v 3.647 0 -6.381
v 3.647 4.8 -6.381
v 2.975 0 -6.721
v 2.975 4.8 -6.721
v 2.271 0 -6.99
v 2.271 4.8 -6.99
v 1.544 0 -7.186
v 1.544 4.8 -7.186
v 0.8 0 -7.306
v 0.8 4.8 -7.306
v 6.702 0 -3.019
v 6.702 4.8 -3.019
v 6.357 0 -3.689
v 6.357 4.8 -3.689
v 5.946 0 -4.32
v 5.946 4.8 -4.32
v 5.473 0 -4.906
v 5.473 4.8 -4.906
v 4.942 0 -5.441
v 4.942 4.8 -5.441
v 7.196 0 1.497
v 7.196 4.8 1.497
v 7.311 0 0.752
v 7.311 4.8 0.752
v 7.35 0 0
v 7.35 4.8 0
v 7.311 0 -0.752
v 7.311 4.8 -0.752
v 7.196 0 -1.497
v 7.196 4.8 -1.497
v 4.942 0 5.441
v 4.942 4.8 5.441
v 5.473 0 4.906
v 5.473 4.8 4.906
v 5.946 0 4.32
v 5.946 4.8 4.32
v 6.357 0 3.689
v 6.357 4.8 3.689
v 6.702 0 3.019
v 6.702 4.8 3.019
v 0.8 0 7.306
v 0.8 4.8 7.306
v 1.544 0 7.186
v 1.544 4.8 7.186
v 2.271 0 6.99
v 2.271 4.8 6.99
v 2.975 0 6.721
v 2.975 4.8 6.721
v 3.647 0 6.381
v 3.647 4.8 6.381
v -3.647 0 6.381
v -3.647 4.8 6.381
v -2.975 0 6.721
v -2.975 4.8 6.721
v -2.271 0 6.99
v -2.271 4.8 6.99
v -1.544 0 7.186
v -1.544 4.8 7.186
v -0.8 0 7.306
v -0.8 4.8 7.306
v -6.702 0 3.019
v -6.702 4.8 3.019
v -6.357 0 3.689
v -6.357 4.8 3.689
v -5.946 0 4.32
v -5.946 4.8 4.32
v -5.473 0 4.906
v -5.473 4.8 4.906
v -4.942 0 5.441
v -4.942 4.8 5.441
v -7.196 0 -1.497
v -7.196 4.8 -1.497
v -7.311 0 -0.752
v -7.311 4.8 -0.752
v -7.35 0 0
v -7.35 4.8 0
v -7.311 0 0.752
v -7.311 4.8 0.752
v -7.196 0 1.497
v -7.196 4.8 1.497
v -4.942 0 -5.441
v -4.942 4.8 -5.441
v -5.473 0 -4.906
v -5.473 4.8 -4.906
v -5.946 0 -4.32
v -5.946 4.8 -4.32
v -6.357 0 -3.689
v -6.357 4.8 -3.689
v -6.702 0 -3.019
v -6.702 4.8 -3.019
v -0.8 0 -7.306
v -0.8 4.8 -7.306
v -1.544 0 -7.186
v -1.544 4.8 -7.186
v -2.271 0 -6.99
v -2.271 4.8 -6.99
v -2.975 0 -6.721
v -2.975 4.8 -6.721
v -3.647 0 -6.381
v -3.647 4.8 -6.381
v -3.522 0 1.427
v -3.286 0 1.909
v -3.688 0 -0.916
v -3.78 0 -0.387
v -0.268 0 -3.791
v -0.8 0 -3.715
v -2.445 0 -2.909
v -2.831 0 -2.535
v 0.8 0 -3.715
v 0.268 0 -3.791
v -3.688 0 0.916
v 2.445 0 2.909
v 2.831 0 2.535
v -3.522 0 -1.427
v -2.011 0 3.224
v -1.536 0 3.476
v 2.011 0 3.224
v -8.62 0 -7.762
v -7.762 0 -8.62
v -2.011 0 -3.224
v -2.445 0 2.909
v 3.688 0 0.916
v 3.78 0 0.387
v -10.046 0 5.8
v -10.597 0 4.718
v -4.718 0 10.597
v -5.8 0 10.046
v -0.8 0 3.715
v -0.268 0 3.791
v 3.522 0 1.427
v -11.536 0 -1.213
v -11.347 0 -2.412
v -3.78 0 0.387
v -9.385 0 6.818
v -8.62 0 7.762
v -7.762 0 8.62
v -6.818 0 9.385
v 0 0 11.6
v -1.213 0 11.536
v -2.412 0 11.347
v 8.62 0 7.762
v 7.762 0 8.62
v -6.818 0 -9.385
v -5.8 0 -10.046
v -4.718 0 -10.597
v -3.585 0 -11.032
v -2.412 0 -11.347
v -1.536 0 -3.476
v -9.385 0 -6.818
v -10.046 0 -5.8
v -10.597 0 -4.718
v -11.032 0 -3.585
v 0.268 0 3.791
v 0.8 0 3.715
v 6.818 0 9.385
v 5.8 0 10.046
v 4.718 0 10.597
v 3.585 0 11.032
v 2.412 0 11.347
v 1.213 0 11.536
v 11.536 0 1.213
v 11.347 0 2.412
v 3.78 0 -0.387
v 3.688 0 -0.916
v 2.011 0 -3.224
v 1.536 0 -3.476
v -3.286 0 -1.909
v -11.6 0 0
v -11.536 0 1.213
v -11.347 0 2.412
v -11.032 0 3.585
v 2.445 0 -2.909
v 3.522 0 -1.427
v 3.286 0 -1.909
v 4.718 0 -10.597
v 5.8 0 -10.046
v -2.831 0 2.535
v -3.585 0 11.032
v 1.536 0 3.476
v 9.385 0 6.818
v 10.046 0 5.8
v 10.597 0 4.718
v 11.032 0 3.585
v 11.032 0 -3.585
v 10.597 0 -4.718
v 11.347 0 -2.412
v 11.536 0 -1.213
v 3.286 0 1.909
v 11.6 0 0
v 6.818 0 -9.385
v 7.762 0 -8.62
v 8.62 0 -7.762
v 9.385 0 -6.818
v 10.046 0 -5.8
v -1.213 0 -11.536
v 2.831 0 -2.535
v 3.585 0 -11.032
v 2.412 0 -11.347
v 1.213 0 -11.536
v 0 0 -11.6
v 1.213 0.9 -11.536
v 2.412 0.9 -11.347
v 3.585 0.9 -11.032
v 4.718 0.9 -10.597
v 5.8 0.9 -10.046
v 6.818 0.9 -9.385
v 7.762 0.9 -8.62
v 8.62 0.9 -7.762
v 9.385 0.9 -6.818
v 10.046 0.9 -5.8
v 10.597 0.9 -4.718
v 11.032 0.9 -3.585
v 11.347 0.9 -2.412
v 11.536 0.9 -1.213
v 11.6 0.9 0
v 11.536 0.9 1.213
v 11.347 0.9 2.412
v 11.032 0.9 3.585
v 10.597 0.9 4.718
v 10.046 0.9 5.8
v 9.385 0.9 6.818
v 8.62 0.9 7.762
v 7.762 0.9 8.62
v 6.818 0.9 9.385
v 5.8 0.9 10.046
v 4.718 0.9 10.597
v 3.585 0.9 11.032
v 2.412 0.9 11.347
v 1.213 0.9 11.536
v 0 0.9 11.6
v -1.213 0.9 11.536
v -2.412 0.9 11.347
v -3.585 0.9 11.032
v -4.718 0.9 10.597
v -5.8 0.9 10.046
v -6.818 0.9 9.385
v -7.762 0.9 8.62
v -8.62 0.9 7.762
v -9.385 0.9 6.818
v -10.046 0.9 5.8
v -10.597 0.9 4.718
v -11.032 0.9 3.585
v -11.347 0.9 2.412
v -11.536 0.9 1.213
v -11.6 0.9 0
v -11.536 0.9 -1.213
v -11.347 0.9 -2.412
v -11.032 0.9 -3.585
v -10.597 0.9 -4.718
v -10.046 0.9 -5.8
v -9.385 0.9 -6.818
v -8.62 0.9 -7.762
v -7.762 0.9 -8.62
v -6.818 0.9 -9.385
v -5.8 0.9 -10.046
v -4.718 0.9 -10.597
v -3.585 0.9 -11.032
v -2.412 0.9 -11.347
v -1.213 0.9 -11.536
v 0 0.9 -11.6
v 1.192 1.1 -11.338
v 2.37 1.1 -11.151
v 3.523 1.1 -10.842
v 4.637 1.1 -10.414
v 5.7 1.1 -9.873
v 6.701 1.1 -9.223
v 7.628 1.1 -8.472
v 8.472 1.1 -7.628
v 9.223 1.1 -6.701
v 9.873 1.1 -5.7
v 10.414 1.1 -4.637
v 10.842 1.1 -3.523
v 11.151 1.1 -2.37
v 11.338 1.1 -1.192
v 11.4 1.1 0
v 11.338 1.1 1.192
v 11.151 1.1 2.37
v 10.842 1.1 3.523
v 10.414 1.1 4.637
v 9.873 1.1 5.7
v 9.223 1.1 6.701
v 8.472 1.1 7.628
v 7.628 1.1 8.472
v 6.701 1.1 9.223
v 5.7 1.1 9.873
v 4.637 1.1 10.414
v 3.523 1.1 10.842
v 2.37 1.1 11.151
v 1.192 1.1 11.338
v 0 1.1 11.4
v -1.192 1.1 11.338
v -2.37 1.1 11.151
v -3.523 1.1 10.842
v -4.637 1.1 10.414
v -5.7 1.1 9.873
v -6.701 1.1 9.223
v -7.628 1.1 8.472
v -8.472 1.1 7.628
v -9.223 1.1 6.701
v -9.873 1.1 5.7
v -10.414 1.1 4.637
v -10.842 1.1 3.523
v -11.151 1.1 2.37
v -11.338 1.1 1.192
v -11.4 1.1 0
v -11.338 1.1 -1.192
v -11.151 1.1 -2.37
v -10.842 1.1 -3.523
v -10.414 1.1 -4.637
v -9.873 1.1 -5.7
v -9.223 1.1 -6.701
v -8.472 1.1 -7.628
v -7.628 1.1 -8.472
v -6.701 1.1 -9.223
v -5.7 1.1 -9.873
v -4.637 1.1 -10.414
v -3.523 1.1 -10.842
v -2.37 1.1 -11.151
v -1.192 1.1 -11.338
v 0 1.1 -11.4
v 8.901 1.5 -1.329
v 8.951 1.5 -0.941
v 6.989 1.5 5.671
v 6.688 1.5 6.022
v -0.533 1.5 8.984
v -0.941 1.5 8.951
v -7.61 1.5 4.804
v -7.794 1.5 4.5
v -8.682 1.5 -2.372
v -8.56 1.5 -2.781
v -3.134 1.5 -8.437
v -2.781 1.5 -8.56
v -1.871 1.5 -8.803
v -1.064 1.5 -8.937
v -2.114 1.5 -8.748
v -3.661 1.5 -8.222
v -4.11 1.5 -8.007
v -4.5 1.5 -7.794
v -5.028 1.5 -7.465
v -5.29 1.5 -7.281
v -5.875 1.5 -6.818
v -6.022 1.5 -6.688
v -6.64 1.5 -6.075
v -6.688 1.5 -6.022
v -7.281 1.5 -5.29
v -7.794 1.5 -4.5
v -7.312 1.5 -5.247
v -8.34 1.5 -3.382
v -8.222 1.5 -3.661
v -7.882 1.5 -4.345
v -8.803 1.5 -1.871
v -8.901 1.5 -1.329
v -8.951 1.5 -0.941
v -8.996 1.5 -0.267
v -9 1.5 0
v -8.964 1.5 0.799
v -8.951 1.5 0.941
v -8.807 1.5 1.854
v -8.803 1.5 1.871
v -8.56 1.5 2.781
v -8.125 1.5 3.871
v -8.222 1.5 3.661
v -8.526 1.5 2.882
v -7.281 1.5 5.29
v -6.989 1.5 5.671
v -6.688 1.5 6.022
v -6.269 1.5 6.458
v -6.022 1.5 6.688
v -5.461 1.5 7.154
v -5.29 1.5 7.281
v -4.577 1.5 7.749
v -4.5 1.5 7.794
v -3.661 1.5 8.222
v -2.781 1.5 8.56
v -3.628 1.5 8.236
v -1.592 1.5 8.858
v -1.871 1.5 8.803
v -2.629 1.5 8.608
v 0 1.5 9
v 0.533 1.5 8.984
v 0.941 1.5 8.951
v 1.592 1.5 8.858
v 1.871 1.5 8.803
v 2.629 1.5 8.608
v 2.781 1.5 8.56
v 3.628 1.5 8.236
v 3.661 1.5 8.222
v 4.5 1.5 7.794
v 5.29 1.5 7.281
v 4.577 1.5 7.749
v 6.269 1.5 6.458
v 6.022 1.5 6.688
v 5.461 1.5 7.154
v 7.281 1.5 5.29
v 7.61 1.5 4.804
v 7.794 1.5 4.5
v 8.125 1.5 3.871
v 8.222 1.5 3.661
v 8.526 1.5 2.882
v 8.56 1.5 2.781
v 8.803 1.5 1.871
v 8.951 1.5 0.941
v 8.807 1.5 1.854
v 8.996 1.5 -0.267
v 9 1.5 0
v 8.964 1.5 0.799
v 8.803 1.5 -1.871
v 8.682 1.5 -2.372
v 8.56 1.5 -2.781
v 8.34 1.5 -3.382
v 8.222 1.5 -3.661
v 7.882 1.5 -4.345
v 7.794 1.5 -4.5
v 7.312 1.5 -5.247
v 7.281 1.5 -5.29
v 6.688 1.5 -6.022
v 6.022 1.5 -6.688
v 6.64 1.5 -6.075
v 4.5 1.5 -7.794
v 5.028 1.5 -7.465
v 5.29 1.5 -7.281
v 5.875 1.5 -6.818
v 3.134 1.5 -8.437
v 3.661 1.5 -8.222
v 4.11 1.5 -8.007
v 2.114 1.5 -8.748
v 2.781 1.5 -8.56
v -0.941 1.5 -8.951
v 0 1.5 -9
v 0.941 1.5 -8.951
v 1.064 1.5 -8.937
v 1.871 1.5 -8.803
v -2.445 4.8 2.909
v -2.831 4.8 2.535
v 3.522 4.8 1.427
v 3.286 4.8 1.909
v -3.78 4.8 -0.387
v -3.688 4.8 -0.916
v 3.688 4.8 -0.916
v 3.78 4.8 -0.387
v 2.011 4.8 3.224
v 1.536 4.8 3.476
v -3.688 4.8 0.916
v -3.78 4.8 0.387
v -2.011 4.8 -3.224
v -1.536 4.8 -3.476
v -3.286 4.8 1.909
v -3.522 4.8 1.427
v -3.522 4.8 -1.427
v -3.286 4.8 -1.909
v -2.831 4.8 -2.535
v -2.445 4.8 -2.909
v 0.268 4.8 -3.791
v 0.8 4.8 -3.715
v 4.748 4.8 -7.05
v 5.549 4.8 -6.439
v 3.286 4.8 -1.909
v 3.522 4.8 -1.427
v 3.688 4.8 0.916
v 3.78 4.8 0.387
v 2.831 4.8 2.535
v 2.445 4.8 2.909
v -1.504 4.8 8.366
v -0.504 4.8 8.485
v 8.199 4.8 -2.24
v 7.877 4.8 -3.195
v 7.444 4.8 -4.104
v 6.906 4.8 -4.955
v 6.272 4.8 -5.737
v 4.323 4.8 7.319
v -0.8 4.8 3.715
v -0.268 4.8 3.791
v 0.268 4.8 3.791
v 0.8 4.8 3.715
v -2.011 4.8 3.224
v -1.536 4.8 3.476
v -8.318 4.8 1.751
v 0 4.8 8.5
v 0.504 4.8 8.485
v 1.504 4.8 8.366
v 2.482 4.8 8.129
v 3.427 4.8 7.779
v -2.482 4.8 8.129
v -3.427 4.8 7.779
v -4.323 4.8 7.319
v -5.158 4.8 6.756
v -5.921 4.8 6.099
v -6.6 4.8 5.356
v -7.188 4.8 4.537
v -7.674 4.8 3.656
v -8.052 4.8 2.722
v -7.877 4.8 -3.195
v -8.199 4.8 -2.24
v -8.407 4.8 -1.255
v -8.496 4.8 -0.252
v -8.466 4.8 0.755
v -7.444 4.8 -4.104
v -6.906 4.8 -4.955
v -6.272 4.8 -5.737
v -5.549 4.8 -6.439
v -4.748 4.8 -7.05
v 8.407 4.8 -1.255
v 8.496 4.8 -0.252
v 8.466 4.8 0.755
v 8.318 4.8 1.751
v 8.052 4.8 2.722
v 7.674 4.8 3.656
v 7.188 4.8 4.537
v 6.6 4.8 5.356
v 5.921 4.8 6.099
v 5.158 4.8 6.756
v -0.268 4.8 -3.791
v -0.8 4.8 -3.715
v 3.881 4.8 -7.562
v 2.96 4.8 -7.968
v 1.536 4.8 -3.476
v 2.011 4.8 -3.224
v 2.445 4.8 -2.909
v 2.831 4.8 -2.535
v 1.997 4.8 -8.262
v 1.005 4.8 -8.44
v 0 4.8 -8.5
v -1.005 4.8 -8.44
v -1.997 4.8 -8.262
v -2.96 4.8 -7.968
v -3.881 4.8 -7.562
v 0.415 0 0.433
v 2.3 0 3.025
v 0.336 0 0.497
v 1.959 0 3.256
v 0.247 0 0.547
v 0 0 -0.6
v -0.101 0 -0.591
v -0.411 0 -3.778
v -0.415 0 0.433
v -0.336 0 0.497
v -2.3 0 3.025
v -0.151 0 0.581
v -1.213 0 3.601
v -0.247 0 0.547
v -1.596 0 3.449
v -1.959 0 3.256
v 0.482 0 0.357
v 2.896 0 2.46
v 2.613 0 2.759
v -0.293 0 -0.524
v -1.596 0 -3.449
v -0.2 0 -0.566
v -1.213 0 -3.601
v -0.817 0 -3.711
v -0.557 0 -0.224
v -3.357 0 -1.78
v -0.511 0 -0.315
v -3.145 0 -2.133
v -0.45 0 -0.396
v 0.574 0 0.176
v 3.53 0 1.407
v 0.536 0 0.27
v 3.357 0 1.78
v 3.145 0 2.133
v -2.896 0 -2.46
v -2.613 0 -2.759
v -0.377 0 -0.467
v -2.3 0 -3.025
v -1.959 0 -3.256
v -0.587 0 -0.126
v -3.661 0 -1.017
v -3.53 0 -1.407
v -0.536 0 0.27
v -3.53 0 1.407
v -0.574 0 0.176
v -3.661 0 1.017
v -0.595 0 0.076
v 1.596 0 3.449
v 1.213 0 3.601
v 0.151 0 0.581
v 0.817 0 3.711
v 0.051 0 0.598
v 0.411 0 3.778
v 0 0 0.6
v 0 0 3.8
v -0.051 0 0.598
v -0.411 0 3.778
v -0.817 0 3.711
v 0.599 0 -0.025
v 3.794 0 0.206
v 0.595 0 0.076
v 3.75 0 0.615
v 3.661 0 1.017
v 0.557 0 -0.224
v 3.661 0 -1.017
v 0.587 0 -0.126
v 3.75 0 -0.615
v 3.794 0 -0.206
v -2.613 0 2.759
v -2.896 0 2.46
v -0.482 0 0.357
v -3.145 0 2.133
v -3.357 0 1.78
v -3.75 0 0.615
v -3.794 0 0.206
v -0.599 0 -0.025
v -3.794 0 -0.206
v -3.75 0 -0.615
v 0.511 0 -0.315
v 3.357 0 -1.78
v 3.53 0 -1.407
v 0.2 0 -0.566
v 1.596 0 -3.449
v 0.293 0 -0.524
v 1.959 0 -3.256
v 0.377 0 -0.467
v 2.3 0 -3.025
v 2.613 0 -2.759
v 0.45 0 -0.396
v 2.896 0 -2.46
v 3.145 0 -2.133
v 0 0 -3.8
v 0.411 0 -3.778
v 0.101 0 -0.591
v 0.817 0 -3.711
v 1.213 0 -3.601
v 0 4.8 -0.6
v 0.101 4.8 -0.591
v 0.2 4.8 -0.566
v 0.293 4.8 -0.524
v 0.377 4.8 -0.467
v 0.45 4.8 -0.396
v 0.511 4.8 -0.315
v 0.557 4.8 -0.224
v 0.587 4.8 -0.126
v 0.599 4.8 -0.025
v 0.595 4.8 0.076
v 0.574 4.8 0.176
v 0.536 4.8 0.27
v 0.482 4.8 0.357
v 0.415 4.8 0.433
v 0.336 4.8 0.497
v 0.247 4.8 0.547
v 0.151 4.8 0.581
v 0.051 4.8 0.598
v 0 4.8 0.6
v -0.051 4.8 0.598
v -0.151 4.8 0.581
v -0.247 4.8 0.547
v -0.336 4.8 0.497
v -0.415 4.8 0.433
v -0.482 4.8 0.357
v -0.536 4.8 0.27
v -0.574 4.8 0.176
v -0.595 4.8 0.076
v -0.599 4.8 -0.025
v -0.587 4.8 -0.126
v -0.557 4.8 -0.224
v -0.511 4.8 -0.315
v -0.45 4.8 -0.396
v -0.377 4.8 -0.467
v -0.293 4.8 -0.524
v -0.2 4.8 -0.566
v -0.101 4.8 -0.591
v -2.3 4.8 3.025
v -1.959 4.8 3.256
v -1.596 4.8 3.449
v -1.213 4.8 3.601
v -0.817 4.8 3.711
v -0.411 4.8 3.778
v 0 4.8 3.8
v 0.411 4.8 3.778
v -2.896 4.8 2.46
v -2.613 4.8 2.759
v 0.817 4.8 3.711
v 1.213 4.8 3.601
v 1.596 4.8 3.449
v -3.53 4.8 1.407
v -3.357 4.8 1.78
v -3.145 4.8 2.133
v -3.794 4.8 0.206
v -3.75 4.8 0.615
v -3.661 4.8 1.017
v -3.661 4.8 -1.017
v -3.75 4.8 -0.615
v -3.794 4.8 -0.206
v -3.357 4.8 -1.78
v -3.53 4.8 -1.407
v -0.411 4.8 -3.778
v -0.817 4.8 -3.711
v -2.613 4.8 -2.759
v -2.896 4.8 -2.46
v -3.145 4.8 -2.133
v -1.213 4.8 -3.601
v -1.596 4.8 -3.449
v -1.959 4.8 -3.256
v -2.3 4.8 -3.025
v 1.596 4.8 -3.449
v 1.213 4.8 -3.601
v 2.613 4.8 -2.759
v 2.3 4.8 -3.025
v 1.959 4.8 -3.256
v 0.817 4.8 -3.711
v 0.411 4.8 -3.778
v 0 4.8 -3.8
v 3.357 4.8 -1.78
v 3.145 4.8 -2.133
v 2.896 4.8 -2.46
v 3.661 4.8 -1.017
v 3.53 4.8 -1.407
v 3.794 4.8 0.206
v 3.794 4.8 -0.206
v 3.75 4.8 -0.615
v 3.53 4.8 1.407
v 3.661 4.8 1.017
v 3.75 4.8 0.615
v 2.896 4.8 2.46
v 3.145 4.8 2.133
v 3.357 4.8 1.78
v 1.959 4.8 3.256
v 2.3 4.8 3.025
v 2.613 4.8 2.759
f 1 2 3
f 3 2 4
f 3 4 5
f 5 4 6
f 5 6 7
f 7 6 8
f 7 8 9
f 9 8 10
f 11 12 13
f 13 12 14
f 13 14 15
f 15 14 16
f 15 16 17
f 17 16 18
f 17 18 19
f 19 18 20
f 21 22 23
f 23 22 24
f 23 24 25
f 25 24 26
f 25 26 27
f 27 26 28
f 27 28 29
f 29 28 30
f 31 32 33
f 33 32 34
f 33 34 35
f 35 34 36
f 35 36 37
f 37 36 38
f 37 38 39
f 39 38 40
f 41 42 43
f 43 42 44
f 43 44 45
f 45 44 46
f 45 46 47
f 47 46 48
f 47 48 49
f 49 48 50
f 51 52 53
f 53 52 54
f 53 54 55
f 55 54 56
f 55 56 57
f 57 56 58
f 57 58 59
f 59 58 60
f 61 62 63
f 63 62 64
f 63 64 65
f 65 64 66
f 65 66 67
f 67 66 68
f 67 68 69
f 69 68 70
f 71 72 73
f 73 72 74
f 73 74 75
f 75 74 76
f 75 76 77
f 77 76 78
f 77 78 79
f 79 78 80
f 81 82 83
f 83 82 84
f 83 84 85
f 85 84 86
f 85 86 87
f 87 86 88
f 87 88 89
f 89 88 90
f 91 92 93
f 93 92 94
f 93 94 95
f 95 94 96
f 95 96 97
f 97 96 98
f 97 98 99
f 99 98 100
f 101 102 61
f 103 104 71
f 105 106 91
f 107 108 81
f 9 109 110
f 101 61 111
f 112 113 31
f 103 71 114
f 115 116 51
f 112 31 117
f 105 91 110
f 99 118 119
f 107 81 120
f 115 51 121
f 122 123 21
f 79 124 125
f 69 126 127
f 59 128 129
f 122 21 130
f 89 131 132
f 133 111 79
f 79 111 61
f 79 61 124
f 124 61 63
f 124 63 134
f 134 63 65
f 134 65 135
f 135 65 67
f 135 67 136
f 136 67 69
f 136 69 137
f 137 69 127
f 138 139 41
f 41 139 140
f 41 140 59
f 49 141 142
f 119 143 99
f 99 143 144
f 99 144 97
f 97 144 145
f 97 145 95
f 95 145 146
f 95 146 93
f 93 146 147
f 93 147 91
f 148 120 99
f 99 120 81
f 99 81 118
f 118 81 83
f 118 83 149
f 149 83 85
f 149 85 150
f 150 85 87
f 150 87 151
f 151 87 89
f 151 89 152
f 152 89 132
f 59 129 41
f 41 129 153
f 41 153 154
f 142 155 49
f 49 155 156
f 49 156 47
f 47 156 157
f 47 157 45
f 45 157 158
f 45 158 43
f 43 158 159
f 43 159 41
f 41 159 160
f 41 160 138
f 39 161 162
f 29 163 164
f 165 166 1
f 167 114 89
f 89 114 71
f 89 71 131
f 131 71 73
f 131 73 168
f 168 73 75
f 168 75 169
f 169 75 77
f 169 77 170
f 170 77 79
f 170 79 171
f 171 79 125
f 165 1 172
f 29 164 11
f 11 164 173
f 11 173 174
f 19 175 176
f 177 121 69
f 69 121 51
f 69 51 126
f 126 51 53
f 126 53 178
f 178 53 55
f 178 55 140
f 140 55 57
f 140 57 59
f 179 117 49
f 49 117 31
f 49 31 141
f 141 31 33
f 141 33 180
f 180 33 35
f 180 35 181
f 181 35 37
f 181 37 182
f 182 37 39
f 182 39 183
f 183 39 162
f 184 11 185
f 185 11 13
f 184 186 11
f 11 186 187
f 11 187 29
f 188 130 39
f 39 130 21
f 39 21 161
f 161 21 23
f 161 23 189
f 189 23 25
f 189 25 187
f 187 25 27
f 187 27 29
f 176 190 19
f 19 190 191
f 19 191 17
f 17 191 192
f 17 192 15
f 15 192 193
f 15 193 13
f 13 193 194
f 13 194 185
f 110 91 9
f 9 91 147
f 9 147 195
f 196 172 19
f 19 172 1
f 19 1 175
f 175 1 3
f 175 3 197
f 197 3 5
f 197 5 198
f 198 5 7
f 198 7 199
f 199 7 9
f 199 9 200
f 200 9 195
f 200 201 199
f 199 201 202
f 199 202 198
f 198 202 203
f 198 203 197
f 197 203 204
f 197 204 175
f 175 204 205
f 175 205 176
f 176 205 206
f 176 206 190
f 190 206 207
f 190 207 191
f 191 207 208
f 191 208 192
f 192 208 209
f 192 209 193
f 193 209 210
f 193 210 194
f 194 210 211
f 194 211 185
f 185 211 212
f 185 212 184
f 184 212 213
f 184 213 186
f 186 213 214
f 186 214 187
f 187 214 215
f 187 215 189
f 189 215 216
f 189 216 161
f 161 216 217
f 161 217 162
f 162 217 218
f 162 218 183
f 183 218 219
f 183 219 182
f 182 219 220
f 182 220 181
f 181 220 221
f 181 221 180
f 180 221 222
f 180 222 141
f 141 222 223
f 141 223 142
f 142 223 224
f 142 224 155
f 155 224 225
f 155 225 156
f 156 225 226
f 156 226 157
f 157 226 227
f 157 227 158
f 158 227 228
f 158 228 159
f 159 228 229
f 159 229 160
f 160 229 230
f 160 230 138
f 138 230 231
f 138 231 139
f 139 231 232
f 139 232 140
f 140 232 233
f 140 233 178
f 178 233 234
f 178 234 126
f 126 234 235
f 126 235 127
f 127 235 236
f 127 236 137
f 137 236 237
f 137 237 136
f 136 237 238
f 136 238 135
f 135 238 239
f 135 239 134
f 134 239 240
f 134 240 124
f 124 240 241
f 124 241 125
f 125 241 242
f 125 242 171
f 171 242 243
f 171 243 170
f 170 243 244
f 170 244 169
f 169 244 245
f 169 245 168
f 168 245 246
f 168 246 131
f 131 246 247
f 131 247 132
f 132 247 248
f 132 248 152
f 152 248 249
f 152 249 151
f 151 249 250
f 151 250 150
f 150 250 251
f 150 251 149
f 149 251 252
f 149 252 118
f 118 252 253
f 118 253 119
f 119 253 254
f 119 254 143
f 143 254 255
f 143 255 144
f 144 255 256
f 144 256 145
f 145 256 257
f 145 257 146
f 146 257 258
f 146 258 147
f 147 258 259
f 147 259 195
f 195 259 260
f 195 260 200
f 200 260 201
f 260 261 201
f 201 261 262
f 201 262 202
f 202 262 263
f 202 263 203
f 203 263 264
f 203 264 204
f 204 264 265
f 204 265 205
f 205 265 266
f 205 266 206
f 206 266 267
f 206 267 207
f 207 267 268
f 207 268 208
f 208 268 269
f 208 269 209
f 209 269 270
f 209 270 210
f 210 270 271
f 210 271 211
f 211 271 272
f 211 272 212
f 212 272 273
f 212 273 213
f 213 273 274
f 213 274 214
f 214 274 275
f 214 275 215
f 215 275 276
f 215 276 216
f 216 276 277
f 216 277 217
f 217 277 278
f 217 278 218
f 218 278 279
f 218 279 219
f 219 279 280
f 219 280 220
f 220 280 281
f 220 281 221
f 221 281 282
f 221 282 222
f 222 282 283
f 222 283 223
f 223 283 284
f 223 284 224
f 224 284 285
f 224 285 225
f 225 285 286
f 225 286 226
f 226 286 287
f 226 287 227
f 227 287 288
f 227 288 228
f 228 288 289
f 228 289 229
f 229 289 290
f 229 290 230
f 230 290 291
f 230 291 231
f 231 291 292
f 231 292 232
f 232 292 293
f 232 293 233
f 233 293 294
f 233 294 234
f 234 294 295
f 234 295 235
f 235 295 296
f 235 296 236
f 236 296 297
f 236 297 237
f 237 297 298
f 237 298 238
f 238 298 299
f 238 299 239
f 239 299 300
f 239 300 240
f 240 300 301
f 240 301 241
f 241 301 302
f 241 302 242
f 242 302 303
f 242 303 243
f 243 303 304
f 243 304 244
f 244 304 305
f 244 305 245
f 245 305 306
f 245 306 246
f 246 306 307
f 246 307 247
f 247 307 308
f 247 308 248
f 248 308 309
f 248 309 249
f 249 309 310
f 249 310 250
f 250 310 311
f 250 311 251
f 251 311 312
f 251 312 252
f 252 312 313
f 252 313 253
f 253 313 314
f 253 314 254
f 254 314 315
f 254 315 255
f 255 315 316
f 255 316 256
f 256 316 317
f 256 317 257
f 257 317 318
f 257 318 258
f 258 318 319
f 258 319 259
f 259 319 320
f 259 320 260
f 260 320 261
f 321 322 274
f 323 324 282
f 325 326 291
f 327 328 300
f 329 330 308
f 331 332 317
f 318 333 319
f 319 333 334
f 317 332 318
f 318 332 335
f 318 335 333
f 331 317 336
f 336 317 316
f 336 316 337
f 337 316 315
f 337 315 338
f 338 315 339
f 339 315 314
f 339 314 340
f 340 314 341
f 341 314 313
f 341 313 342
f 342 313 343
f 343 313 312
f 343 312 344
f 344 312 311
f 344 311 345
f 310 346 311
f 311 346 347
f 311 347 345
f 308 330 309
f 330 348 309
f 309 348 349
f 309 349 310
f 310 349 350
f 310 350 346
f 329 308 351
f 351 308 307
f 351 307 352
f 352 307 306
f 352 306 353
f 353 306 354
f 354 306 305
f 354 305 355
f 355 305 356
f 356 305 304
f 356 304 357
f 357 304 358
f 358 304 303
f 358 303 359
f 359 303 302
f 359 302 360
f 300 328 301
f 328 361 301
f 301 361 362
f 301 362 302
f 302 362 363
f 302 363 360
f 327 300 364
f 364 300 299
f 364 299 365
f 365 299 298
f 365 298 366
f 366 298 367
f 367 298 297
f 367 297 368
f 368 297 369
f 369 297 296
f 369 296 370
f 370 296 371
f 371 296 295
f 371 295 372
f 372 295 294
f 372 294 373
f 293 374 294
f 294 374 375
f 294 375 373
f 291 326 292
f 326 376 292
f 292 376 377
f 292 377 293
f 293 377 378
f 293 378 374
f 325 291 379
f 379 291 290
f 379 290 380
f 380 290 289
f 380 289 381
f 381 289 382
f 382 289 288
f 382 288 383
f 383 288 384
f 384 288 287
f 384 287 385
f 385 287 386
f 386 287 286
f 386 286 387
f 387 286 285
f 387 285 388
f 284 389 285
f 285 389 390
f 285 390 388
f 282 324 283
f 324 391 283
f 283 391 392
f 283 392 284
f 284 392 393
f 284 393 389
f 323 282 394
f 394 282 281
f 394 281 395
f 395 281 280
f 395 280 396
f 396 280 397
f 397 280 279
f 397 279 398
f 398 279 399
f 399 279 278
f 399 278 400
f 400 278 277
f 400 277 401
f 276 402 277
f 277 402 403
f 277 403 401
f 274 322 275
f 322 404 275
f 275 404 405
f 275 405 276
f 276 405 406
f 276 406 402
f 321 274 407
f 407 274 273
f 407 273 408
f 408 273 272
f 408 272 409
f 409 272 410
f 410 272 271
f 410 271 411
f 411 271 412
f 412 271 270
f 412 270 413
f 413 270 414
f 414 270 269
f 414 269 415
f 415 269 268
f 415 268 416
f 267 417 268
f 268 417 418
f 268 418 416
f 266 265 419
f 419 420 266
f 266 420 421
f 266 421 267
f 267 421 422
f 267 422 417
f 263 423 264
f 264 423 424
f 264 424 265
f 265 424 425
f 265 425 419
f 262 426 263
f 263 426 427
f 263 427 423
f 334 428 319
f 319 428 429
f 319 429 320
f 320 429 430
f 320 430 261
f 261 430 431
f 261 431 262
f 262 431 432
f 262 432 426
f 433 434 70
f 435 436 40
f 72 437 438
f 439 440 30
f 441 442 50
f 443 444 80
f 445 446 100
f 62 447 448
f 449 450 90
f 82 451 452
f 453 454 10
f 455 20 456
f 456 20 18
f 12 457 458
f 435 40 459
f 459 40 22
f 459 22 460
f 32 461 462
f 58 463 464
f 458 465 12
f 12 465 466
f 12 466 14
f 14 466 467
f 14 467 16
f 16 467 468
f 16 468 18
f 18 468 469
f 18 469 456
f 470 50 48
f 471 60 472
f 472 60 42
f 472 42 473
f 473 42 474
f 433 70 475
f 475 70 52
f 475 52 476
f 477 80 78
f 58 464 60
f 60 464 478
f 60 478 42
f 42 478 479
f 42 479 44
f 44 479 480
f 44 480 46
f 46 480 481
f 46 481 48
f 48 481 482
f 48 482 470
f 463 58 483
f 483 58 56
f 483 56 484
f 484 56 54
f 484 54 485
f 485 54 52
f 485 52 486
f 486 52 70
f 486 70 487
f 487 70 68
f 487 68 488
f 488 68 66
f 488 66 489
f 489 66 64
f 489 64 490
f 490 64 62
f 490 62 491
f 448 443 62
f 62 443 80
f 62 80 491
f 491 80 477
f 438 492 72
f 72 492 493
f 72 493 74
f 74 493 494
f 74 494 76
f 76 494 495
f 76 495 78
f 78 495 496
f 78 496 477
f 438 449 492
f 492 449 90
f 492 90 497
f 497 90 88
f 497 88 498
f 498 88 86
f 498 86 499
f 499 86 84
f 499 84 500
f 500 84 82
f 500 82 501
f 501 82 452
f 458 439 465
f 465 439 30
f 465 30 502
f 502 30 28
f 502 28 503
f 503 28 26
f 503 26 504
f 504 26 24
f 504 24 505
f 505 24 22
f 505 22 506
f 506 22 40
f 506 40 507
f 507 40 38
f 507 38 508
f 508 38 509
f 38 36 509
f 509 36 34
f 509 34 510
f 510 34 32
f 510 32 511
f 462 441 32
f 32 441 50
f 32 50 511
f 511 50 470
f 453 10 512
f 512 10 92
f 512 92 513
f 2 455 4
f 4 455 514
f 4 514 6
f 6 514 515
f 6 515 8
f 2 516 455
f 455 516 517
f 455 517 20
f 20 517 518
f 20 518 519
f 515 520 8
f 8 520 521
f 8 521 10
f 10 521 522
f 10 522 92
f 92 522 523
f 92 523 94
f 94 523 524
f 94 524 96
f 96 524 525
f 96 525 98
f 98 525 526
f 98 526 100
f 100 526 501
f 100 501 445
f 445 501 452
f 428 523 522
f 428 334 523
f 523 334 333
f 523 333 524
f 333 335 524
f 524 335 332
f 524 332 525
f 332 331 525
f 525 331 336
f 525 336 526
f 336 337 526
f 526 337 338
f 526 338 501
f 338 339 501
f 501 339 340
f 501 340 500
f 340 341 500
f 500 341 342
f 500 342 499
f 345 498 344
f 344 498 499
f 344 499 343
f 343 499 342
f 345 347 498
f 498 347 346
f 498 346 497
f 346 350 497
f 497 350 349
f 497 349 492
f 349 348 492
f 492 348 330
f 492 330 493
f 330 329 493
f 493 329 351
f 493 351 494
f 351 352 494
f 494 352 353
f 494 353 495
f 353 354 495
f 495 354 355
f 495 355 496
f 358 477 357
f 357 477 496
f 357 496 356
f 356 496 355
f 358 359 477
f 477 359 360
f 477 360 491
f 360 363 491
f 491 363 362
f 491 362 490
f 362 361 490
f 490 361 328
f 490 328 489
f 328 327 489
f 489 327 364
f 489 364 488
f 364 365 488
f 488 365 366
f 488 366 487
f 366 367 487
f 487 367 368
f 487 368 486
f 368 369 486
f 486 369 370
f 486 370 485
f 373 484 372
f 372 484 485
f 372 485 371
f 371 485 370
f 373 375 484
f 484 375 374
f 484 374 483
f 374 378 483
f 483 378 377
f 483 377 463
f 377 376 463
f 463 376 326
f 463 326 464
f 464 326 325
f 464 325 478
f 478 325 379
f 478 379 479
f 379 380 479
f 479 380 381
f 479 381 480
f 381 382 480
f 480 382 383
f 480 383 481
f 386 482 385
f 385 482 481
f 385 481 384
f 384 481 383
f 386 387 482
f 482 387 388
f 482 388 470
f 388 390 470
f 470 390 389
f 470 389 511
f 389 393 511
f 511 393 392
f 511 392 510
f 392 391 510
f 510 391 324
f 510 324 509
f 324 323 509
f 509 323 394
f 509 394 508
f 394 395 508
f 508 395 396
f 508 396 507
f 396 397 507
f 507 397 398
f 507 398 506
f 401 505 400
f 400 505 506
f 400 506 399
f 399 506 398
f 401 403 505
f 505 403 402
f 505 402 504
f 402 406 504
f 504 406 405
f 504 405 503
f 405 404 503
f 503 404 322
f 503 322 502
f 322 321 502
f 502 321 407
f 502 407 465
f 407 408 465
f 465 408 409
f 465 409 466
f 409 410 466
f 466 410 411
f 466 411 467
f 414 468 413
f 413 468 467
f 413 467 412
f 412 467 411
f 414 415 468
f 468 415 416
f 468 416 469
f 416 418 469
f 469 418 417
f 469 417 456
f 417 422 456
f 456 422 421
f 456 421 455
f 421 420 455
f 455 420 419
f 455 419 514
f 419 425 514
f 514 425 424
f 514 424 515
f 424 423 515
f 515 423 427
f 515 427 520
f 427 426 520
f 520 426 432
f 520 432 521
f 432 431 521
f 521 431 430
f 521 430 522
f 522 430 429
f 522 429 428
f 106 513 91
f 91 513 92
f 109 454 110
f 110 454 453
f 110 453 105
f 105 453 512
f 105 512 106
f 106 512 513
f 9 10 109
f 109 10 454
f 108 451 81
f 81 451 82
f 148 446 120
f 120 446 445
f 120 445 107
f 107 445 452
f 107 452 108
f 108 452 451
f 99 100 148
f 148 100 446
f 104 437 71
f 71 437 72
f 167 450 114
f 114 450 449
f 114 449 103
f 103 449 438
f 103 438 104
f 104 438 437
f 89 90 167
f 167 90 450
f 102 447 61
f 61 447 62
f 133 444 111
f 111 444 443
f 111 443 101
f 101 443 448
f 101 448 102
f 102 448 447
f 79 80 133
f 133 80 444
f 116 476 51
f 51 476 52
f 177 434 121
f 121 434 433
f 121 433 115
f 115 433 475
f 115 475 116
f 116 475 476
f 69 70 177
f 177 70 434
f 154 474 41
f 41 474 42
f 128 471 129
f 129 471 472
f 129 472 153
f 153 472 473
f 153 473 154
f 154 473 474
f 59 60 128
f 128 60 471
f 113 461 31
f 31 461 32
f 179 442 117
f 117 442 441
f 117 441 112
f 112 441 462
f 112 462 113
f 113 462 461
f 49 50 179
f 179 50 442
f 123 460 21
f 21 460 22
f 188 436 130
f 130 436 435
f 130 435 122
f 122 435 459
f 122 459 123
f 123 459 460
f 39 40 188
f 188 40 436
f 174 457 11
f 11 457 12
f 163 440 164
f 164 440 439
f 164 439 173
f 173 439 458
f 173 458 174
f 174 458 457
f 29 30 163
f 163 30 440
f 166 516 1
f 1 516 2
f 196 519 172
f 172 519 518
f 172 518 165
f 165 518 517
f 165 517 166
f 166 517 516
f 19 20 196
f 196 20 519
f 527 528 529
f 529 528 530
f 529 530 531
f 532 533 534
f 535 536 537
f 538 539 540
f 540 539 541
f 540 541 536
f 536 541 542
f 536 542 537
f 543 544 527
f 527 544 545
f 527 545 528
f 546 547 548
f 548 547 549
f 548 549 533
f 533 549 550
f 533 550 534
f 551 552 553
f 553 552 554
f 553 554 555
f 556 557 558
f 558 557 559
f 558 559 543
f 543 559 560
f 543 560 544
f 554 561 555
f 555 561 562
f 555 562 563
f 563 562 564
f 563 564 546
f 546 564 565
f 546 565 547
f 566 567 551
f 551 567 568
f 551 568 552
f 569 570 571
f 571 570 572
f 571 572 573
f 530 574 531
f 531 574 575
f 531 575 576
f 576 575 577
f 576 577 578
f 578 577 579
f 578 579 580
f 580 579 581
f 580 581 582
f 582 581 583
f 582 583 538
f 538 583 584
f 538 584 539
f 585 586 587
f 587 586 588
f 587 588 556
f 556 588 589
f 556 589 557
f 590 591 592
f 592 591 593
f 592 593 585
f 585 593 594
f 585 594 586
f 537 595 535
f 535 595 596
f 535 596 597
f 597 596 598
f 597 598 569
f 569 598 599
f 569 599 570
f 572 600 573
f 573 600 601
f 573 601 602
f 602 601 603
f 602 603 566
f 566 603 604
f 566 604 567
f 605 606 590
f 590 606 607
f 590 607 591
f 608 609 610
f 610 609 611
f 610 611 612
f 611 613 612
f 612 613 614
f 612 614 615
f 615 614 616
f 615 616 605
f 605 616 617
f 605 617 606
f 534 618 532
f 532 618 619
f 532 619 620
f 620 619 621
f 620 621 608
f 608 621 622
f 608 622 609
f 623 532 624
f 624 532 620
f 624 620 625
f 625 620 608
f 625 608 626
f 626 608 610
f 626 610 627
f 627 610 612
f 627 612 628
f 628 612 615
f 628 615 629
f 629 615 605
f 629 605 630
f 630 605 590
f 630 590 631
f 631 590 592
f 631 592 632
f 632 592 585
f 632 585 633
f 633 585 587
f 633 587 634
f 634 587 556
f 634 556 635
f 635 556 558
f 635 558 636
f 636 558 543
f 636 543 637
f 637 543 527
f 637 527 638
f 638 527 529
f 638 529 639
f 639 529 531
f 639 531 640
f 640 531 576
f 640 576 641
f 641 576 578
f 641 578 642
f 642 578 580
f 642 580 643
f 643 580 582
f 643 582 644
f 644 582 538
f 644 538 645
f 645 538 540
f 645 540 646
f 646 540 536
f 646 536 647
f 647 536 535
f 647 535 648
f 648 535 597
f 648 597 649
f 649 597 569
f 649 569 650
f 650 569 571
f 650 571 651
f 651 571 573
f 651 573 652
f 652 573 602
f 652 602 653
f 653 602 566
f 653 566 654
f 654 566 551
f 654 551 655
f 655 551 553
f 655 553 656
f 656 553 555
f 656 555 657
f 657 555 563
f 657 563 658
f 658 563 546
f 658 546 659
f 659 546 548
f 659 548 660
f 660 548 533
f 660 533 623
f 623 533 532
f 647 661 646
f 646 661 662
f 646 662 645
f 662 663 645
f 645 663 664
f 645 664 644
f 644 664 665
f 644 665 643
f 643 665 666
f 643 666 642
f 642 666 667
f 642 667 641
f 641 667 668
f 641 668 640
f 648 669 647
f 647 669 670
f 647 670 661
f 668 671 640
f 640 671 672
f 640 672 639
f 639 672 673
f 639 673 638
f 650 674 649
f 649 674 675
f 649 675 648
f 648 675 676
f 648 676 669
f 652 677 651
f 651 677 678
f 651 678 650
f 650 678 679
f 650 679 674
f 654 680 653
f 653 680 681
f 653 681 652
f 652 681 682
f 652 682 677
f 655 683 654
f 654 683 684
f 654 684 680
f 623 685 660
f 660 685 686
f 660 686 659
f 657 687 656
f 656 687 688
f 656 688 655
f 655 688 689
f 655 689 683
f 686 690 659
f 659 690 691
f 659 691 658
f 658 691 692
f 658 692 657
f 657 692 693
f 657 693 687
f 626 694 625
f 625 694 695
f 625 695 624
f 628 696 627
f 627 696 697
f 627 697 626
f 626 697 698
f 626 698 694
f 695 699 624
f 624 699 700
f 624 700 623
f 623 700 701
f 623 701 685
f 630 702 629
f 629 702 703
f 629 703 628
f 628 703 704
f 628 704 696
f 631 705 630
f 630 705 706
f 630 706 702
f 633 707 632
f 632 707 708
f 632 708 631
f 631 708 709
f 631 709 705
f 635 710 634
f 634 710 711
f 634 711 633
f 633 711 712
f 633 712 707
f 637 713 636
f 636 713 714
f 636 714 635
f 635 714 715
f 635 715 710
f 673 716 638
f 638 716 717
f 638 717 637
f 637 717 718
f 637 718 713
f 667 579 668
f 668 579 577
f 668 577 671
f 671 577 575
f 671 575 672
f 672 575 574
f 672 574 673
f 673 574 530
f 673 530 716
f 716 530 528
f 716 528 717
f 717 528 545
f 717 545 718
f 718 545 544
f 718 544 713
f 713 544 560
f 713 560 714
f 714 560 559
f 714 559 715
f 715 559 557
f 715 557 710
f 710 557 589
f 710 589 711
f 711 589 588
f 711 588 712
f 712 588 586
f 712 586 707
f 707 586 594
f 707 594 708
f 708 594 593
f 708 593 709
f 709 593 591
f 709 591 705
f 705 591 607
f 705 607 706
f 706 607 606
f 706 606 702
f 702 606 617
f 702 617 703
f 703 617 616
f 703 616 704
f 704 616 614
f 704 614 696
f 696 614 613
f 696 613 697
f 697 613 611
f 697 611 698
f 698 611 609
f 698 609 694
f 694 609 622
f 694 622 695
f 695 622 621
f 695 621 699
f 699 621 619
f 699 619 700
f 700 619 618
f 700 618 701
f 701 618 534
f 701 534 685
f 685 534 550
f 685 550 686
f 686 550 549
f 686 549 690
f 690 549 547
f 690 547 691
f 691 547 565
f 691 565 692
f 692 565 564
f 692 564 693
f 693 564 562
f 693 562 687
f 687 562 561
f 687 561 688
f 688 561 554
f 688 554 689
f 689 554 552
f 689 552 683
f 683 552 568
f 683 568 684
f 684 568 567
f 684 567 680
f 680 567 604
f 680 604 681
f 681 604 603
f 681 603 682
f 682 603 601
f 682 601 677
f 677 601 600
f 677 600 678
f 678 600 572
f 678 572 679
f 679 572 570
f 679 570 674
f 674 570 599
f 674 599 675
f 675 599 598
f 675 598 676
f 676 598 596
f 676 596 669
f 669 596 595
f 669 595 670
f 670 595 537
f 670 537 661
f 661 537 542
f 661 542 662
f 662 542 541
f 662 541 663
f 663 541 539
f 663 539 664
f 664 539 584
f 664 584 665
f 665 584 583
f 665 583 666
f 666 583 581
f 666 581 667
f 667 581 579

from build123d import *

# Parameters (mm, degrees)
SKETCH_4_R               = 11.6
SKETCH_4_R_2             = 0.6
EXTRUDE_1_DEPTH          = 1.1
EXTRUDE_START            = 1.5
SKETCH_4_3_R             = 9
SKETCH_4_3_R_2           = 0.6
EXTRUDE_2_DEPTH          = 3.3
CHAMFER_1_SIZE           = 0.2
SKETCH_4_4_R             = 0.6
CUT_EXTRUDE_2_DEPTH      = 18.092688495
CHAMFER_2_SIZE           = 0.5
CHAMFER_2_SIZE_2         = 3.3
CUT_EXTRUDE_4_DEPTH      = 18.092688495
EXTRUDE_3_DEPTH          = 4.8
PATTERN_CIRCULAR_2_COUNT = 10


with BuildPart() as part:
    # 草图4 → 凸台-拉伸1 (new body)
    with BuildSketch(Plane(origin=(0, 0, 0), x_dir=(1, 0, 0), z_dir=(0, 1, 0))):
        with Locations(Location((0, 0, 0), (0, 0, 270))):
            Circle(SKETCH_4_R)
        with Locations(Location((0, 0, 0), (0, 0, 270))):
            Circle(SKETCH_4_R_2, mode=Mode.SUBTRACT)
    extrude(amount=EXTRUDE_1_DEPTH)

    # 倒角1
    chamfer_1_edges = [part.edges().sort_by_distance(p)[0] for p in [
        (0, 1.1, -11.6),
    ]]
    chamfer(chamfer_1_edges, length=CHAMFER_1_SIZE)


with BuildPart() as body_2:
    # 草图4<3> → 凸台-拉伸2 (new body)
    with BuildSketch(Plane(origin=(0, 0, 0), x_dir=(1, 0, 0), z_dir=(0, 1, 0)).offset(EXTRUDE_START)):
        with Locations(Location((0, 0, 0), (0, 0, 270))):
            Circle(SKETCH_4_3_R)
        with Locations(Location((0, 0, 0), (0, 0, 270))):
            Circle(SKETCH_4_3_R_2, mode=Mode.SUBTRACT)
    extrude(amount=EXTRUDE_2_DEPTH)


    add(part.part)  # loft_1 joins it to this body
    # loft up to a face of the part (loft_1)
    loft([Face(Wire([body_2.edges().sort_by_distance((-6.560717647, 1.5, -6.160923953))[0]])), Face(Wire([body_2.edges().sort_by_distance((8.310242353, 1.1, -7.803837008))[0]]))])

    # 草图4<4> → 切除-拉伸2 (cut, through all)
    with BuildSketch(Plane(origin=(0, 0, 0), x_dir=(1, 0, 0), z_dir=(0, 1, 0))):
        with Locations(Location((0, 0, 0), (0, 0, 270))):
            Circle(SKETCH_4_4_R)
    extrude(amount=CUT_EXTRUDE_2_DEPTH, mode=Mode.SUBTRACT)

    # 倒角2
    # the kernel refuses this chamfer: 3.3, 0.5 mm, written as the material it takes off along each edge
    with BuildSketch(Plane(origin=(0, 4.8, 0), x_dir=(0, 0, 1), z_dir=(-1, 0, 0))) as chamfer_2_piece_1:
        Polygon((9 - CHAMFER_2_SIZE, 0), (9, -CHAMFER_2_SIZE_2), (9, 0), align=None)
    revolve(axis=Axis((0, 4.8, 0), (0, 1, 0)), mode=Mode.SUBTRACT)

    # 草图5 → 切除-拉伸4 (cut, through all)
    with BuildSketch(Plane(origin=(0, 4.8, 0), x_dir=(1, 0, 0), z_dir=(0, 1, 0))):
        with BuildLine():
            ThreePointArc((3.8, 0), (-2.387467277, -2.9563491), (-0.8, 3.714835124))
            Line((-0.8, 3.714835124), (-0.8, 7.30633287))
            ThreePointArc((-0.8, 7.30633287), (-4.906246019, -5.47277352), (7.35, 0))
            ThreePointArc((7.35, 0), (5.47277352, 4.906246019), (0.8, 7.30633287))
            Line((0.8, 7.30633287), (0.8, 3.714835124))
            ThreePointArc((0.8, 3.714835124), (2.9563491, 2.387467277), (3.8, 0))
        make_face()
        with BuildLine():
            Line((-0.8, 7.30633287), (-0.8, 3.714835124))
            ThreePointArc((-0.8, 3.714835124), (-0.402260194, 3.778648798), (0, 3.8))
            Line((0, 3.8), (0, 7.35))
            ThreePointArc((0, 7.35), (-0.400595438, 7.339075098), (-0.8, 7.30633287))
        make_face()
        with BuildLine():
            Line((0, 7.35), (0, 3.8))
            ThreePointArc((0, 3.8), (0.402260194, 3.778648798), (0.8, 3.714835124))
            Line((0.8, 3.714835124), (0.8, 7.30633287))
            ThreePointArc((0.8, 7.30633287), (0.400595438, 7.339075098), (0, 7.35))
        make_face()
    extrude(amount=-CUT_EXTRUDE_4_DEPTH, mode=Mode.SUBTRACT)


with BuildPart() as cut_extrude_4_piece_1:
    # of the separate pieces the step leaves, piece 1, a body of its own (cut_extrude_4_pieces)
    add(body_2.part.solids().sort_by_distance((0, 0.9, 11.6))[0])

    # 草图5<4> → 凸台-拉伸3 (add)
    with BuildSketch(Plane(origin=(0, 4.8, 0), x_dir=(1, 0, 0), z_dir=(0, 1, 0))):
        with BuildLine():
            Line((0, 7.35), (0, 3.8))
            ThreePointArc((0, 3.8), (0.402260194, 3.778648798), (0.8, 3.714835124))
            Line((0.8, 3.714835124), (0.8, 7.30633287))
            ThreePointArc((0.8, 7.30633287), (0.400595438, 7.339075098), (0, 7.35))
        make_face()
        with BuildLine():
            Line((-0.8, 7.30633287), (-0.8, 3.714835124))
            ThreePointArc((-0.8, 3.714835124), (-0.402260194, 3.778648798), (0, 3.8))
            Line((0, 3.8), (0, 7.35))
            ThreePointArc((0, 7.35), (-0.400595438, 7.339075098), (-0.8, 7.30633287))
        make_face()
    extrude_3 = extrude(amount=-EXTRUDE_3_DEPTH)

    # 阵列(圆周)2: 凸台-拉伸3 ×10 about axis
    pattern_circular_2_axis = Axis((0, 0, 0), (0, 1, 0))
    for i in range(1, PATTERN_CIRCULAR_2_COUNT):
        add(extrude_3.rotate(pattern_circular_2_axis, i * 360 / PATTERN_CIRCULAR_2_COUNT))


with BuildPart() as cut_extrude_4_piece_2:
    # of the separate pieces the step leaves, piece 2, a body of its own (cut_extrude_4_pieces)
    add(body_2.part.solids().sort_by_distance((-0.8, 0, -3.714835124))[0])


solid = Compound([cut_extrude_4_piece_1.part, cut_extrude_4_piece_2.part])
